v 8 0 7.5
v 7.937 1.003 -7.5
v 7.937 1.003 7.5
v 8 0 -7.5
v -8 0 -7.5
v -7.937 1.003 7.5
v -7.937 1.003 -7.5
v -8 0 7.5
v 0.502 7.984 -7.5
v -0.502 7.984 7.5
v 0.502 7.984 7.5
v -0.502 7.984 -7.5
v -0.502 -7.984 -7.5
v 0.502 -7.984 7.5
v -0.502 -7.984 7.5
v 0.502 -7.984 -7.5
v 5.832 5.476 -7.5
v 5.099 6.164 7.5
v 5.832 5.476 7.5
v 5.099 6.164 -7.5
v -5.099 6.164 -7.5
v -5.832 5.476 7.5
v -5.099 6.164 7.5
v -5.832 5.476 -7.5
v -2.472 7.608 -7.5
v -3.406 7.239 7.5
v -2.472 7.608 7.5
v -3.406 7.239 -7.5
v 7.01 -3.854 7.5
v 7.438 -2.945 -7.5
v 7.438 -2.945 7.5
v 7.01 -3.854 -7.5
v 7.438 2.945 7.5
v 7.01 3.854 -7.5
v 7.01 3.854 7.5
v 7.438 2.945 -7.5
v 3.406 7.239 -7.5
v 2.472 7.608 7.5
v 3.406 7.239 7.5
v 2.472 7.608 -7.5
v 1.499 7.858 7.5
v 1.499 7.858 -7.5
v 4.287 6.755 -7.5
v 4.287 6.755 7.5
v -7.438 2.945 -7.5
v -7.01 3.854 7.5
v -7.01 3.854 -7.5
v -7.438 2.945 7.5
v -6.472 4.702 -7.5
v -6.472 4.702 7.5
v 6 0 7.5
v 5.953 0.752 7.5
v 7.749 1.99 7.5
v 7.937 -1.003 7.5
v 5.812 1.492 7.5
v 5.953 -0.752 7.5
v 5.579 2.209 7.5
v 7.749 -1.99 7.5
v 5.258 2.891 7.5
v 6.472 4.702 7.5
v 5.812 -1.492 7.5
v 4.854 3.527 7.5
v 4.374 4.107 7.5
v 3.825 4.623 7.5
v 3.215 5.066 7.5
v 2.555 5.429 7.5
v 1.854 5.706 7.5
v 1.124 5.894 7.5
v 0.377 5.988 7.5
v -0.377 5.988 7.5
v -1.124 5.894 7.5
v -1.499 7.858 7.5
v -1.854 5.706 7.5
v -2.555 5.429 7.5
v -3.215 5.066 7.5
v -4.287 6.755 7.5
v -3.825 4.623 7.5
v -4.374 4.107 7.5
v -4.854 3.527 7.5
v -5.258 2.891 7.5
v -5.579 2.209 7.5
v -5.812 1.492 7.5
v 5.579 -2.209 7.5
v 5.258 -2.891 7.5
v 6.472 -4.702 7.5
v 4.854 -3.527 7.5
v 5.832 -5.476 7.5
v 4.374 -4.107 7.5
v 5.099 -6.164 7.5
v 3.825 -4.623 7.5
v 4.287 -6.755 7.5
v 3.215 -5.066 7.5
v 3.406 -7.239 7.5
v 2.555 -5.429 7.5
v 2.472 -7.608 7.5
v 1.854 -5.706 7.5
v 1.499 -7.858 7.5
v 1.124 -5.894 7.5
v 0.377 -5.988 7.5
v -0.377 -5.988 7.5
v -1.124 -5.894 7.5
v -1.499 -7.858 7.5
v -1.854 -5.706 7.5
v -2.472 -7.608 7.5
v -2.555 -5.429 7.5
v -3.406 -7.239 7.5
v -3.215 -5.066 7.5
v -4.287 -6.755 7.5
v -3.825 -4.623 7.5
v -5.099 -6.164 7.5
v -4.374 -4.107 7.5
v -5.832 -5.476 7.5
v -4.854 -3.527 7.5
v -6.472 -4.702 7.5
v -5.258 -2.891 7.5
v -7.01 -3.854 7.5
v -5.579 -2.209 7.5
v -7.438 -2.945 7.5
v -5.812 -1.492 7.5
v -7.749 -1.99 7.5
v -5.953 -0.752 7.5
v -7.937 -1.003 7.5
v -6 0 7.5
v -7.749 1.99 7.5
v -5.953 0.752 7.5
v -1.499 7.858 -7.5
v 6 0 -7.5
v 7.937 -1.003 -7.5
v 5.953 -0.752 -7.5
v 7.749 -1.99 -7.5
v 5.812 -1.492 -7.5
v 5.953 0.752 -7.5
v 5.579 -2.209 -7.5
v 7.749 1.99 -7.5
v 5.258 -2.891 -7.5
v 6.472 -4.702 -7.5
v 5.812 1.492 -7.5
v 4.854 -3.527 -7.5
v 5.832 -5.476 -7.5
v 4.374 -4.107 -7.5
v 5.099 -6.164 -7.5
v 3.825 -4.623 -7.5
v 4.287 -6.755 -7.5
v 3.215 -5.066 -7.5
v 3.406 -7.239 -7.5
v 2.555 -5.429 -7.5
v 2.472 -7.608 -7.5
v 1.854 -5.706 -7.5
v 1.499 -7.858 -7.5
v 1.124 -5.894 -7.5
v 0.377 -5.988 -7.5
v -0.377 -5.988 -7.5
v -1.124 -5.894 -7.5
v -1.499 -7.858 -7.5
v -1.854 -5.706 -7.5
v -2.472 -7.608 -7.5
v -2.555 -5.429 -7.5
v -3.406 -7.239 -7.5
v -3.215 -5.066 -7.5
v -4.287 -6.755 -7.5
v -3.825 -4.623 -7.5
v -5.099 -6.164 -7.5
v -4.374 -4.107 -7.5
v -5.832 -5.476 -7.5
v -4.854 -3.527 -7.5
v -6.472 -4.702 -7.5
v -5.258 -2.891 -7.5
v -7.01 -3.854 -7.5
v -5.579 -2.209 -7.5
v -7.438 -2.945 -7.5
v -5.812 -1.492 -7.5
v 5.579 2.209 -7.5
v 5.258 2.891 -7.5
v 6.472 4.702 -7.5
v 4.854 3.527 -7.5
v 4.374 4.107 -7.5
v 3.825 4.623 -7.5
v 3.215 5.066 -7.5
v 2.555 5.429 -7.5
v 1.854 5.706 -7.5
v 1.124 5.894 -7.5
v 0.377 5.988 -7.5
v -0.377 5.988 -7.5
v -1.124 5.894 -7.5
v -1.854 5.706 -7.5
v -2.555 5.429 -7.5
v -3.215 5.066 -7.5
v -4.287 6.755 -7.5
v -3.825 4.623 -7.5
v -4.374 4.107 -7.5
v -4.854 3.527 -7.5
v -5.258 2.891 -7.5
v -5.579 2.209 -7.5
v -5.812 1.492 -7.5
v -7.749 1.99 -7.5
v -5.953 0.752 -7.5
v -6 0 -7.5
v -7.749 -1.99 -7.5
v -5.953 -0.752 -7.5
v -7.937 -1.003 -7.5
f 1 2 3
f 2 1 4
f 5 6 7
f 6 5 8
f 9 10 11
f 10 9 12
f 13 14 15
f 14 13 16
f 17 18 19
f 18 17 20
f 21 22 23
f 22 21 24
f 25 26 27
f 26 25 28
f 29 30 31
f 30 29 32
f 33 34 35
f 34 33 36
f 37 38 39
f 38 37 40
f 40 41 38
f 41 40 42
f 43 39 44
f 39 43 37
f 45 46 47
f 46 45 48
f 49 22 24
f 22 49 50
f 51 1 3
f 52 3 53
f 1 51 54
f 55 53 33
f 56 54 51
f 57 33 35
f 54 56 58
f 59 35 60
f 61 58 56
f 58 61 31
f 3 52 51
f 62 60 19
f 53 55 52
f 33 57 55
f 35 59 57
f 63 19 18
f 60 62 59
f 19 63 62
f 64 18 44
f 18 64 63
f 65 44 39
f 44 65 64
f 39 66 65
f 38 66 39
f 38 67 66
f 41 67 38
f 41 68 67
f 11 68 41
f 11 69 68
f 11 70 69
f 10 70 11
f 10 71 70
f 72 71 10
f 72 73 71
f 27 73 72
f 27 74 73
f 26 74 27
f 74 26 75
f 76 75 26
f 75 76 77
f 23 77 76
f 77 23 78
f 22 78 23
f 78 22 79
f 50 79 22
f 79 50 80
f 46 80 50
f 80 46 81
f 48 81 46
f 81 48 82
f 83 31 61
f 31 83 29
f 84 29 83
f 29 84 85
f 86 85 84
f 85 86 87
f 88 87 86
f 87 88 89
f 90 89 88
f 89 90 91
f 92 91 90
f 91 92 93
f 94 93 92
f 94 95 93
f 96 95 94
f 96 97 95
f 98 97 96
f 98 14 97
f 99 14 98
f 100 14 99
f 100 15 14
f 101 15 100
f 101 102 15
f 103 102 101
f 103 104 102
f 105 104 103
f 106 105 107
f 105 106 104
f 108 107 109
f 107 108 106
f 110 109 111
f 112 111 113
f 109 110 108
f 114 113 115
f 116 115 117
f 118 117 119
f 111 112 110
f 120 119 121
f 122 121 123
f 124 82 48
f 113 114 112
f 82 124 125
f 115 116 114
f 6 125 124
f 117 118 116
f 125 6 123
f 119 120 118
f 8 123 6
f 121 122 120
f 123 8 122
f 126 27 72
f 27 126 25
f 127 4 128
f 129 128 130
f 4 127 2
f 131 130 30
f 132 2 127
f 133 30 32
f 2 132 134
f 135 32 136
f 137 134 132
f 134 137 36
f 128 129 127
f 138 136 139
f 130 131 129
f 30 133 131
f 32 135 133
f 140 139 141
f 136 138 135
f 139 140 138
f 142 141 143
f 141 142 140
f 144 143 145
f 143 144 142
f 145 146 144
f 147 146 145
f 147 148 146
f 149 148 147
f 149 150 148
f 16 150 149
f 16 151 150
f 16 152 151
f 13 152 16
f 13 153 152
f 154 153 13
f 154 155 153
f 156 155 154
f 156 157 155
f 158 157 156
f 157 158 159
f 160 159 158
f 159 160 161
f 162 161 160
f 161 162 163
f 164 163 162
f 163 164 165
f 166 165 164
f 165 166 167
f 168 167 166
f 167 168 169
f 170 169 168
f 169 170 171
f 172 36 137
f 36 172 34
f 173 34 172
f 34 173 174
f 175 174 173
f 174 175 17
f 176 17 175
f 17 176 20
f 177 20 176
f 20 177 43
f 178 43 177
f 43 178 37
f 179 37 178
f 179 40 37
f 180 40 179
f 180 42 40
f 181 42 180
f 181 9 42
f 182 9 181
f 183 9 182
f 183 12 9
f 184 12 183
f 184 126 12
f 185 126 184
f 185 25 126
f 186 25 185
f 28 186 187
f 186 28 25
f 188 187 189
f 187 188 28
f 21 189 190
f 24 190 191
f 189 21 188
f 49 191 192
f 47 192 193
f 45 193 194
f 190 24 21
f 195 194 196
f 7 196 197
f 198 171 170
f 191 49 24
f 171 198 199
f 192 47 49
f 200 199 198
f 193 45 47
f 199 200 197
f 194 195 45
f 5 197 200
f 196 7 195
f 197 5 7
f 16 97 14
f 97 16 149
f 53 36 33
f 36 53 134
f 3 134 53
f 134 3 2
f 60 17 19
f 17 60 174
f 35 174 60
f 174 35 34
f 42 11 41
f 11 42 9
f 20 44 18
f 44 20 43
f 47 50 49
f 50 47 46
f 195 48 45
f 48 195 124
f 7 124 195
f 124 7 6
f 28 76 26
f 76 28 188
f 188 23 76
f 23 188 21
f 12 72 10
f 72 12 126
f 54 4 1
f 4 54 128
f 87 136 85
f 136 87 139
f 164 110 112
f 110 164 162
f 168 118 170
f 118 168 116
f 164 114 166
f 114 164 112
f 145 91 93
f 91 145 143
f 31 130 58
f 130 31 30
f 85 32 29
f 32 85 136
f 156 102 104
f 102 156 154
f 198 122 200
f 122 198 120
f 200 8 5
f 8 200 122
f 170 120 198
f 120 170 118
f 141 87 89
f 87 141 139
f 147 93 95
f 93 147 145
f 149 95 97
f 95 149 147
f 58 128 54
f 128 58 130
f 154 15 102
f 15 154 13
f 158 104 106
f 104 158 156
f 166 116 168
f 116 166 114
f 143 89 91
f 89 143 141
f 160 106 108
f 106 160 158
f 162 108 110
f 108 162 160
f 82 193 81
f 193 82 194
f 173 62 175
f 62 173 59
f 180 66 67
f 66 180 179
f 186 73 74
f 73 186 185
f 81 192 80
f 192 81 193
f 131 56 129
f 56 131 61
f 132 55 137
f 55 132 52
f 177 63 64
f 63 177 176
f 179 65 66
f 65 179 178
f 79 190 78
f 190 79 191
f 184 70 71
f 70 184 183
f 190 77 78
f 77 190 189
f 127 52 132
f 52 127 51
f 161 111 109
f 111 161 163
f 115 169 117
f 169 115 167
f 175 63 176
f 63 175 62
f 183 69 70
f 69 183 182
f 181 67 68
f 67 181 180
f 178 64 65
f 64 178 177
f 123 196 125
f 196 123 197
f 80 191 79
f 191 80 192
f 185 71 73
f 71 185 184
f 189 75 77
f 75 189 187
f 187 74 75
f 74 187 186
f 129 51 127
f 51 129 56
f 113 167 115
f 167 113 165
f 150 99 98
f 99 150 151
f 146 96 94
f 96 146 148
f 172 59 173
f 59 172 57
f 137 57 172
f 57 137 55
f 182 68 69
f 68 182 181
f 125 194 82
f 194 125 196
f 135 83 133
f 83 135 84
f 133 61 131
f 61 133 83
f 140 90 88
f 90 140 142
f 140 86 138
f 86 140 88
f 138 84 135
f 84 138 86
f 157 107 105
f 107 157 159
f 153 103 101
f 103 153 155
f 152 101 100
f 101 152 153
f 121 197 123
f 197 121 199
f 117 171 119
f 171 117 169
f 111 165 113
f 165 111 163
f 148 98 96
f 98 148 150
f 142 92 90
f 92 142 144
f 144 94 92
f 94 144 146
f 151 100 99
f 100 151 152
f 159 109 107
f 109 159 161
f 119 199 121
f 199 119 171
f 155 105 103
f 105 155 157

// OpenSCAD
$fn = 50;


difference() {
	union() {
		translate(v = [0, 0, -7.5000000000]) {
			cylinder(h = 15, r = 8.0000000000);
		}
	}
	union() {
		translate(v = [0, 0, -100.0000000000]) {
			cylinder(h = 200, r = 6);
		}
	}
}
